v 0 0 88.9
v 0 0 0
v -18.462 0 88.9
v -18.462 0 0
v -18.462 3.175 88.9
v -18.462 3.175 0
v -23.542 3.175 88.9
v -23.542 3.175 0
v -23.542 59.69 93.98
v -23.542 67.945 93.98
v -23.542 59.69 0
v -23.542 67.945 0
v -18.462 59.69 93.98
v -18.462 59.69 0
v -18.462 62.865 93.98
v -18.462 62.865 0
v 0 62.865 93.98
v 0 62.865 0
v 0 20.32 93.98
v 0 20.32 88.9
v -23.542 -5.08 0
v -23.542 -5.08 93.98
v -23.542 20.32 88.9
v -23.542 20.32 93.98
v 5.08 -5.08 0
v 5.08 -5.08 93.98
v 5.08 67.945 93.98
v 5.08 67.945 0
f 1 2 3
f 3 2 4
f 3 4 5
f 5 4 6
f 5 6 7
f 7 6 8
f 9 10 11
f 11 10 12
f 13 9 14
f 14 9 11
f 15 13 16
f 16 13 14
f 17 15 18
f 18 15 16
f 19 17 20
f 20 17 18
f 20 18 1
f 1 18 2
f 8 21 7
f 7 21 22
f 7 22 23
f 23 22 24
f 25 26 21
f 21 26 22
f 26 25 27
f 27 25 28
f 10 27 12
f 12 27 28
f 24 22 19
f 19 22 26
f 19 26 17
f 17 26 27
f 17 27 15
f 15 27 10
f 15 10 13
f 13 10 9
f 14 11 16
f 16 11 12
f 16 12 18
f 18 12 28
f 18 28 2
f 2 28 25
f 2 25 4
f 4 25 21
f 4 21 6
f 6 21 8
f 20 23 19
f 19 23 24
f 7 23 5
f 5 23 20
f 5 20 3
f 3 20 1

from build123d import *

# Parameters (mm, degrees)
EXTRUDE_THIN1_DEPTH = 93.98
SKETCH2_W           = 28.622498
SKETCH2_H           = 25.4
BOSS_EXTRUDE1_DEPTH = 5.08


with BuildPart() as part:
    # Sketch1 → Extrude-Thin1 (new body)
    with BuildSketch(Plane.XY):
        Polygon((-18.462498, 59.69), (-18.462498, 62.865), (0, 62.865), (0, 0), (-18.462498, 0), (-18.462498, 3.175), (-23.542498, 3.175), (-23.542498, -5.08), (5.08, -5.08), (5.08, 67.945), (-23.542498, 67.945), (-23.542498, 59.69), align=None)
    extrude(amount=EXTRUDE_THIN1_DEPTH)

    # Sketch2 → Boss-Extrude1 (add)
    with BuildSketch(Plane.XY.offset(93.98)):
        with Locations((-9.231249, 7.62)):
            Rectangle(SKETCH2_W, SKETCH2_H)
    extrude(amount=-BOSS_EXTRUDE1_DEPTH)


solid = part.part
